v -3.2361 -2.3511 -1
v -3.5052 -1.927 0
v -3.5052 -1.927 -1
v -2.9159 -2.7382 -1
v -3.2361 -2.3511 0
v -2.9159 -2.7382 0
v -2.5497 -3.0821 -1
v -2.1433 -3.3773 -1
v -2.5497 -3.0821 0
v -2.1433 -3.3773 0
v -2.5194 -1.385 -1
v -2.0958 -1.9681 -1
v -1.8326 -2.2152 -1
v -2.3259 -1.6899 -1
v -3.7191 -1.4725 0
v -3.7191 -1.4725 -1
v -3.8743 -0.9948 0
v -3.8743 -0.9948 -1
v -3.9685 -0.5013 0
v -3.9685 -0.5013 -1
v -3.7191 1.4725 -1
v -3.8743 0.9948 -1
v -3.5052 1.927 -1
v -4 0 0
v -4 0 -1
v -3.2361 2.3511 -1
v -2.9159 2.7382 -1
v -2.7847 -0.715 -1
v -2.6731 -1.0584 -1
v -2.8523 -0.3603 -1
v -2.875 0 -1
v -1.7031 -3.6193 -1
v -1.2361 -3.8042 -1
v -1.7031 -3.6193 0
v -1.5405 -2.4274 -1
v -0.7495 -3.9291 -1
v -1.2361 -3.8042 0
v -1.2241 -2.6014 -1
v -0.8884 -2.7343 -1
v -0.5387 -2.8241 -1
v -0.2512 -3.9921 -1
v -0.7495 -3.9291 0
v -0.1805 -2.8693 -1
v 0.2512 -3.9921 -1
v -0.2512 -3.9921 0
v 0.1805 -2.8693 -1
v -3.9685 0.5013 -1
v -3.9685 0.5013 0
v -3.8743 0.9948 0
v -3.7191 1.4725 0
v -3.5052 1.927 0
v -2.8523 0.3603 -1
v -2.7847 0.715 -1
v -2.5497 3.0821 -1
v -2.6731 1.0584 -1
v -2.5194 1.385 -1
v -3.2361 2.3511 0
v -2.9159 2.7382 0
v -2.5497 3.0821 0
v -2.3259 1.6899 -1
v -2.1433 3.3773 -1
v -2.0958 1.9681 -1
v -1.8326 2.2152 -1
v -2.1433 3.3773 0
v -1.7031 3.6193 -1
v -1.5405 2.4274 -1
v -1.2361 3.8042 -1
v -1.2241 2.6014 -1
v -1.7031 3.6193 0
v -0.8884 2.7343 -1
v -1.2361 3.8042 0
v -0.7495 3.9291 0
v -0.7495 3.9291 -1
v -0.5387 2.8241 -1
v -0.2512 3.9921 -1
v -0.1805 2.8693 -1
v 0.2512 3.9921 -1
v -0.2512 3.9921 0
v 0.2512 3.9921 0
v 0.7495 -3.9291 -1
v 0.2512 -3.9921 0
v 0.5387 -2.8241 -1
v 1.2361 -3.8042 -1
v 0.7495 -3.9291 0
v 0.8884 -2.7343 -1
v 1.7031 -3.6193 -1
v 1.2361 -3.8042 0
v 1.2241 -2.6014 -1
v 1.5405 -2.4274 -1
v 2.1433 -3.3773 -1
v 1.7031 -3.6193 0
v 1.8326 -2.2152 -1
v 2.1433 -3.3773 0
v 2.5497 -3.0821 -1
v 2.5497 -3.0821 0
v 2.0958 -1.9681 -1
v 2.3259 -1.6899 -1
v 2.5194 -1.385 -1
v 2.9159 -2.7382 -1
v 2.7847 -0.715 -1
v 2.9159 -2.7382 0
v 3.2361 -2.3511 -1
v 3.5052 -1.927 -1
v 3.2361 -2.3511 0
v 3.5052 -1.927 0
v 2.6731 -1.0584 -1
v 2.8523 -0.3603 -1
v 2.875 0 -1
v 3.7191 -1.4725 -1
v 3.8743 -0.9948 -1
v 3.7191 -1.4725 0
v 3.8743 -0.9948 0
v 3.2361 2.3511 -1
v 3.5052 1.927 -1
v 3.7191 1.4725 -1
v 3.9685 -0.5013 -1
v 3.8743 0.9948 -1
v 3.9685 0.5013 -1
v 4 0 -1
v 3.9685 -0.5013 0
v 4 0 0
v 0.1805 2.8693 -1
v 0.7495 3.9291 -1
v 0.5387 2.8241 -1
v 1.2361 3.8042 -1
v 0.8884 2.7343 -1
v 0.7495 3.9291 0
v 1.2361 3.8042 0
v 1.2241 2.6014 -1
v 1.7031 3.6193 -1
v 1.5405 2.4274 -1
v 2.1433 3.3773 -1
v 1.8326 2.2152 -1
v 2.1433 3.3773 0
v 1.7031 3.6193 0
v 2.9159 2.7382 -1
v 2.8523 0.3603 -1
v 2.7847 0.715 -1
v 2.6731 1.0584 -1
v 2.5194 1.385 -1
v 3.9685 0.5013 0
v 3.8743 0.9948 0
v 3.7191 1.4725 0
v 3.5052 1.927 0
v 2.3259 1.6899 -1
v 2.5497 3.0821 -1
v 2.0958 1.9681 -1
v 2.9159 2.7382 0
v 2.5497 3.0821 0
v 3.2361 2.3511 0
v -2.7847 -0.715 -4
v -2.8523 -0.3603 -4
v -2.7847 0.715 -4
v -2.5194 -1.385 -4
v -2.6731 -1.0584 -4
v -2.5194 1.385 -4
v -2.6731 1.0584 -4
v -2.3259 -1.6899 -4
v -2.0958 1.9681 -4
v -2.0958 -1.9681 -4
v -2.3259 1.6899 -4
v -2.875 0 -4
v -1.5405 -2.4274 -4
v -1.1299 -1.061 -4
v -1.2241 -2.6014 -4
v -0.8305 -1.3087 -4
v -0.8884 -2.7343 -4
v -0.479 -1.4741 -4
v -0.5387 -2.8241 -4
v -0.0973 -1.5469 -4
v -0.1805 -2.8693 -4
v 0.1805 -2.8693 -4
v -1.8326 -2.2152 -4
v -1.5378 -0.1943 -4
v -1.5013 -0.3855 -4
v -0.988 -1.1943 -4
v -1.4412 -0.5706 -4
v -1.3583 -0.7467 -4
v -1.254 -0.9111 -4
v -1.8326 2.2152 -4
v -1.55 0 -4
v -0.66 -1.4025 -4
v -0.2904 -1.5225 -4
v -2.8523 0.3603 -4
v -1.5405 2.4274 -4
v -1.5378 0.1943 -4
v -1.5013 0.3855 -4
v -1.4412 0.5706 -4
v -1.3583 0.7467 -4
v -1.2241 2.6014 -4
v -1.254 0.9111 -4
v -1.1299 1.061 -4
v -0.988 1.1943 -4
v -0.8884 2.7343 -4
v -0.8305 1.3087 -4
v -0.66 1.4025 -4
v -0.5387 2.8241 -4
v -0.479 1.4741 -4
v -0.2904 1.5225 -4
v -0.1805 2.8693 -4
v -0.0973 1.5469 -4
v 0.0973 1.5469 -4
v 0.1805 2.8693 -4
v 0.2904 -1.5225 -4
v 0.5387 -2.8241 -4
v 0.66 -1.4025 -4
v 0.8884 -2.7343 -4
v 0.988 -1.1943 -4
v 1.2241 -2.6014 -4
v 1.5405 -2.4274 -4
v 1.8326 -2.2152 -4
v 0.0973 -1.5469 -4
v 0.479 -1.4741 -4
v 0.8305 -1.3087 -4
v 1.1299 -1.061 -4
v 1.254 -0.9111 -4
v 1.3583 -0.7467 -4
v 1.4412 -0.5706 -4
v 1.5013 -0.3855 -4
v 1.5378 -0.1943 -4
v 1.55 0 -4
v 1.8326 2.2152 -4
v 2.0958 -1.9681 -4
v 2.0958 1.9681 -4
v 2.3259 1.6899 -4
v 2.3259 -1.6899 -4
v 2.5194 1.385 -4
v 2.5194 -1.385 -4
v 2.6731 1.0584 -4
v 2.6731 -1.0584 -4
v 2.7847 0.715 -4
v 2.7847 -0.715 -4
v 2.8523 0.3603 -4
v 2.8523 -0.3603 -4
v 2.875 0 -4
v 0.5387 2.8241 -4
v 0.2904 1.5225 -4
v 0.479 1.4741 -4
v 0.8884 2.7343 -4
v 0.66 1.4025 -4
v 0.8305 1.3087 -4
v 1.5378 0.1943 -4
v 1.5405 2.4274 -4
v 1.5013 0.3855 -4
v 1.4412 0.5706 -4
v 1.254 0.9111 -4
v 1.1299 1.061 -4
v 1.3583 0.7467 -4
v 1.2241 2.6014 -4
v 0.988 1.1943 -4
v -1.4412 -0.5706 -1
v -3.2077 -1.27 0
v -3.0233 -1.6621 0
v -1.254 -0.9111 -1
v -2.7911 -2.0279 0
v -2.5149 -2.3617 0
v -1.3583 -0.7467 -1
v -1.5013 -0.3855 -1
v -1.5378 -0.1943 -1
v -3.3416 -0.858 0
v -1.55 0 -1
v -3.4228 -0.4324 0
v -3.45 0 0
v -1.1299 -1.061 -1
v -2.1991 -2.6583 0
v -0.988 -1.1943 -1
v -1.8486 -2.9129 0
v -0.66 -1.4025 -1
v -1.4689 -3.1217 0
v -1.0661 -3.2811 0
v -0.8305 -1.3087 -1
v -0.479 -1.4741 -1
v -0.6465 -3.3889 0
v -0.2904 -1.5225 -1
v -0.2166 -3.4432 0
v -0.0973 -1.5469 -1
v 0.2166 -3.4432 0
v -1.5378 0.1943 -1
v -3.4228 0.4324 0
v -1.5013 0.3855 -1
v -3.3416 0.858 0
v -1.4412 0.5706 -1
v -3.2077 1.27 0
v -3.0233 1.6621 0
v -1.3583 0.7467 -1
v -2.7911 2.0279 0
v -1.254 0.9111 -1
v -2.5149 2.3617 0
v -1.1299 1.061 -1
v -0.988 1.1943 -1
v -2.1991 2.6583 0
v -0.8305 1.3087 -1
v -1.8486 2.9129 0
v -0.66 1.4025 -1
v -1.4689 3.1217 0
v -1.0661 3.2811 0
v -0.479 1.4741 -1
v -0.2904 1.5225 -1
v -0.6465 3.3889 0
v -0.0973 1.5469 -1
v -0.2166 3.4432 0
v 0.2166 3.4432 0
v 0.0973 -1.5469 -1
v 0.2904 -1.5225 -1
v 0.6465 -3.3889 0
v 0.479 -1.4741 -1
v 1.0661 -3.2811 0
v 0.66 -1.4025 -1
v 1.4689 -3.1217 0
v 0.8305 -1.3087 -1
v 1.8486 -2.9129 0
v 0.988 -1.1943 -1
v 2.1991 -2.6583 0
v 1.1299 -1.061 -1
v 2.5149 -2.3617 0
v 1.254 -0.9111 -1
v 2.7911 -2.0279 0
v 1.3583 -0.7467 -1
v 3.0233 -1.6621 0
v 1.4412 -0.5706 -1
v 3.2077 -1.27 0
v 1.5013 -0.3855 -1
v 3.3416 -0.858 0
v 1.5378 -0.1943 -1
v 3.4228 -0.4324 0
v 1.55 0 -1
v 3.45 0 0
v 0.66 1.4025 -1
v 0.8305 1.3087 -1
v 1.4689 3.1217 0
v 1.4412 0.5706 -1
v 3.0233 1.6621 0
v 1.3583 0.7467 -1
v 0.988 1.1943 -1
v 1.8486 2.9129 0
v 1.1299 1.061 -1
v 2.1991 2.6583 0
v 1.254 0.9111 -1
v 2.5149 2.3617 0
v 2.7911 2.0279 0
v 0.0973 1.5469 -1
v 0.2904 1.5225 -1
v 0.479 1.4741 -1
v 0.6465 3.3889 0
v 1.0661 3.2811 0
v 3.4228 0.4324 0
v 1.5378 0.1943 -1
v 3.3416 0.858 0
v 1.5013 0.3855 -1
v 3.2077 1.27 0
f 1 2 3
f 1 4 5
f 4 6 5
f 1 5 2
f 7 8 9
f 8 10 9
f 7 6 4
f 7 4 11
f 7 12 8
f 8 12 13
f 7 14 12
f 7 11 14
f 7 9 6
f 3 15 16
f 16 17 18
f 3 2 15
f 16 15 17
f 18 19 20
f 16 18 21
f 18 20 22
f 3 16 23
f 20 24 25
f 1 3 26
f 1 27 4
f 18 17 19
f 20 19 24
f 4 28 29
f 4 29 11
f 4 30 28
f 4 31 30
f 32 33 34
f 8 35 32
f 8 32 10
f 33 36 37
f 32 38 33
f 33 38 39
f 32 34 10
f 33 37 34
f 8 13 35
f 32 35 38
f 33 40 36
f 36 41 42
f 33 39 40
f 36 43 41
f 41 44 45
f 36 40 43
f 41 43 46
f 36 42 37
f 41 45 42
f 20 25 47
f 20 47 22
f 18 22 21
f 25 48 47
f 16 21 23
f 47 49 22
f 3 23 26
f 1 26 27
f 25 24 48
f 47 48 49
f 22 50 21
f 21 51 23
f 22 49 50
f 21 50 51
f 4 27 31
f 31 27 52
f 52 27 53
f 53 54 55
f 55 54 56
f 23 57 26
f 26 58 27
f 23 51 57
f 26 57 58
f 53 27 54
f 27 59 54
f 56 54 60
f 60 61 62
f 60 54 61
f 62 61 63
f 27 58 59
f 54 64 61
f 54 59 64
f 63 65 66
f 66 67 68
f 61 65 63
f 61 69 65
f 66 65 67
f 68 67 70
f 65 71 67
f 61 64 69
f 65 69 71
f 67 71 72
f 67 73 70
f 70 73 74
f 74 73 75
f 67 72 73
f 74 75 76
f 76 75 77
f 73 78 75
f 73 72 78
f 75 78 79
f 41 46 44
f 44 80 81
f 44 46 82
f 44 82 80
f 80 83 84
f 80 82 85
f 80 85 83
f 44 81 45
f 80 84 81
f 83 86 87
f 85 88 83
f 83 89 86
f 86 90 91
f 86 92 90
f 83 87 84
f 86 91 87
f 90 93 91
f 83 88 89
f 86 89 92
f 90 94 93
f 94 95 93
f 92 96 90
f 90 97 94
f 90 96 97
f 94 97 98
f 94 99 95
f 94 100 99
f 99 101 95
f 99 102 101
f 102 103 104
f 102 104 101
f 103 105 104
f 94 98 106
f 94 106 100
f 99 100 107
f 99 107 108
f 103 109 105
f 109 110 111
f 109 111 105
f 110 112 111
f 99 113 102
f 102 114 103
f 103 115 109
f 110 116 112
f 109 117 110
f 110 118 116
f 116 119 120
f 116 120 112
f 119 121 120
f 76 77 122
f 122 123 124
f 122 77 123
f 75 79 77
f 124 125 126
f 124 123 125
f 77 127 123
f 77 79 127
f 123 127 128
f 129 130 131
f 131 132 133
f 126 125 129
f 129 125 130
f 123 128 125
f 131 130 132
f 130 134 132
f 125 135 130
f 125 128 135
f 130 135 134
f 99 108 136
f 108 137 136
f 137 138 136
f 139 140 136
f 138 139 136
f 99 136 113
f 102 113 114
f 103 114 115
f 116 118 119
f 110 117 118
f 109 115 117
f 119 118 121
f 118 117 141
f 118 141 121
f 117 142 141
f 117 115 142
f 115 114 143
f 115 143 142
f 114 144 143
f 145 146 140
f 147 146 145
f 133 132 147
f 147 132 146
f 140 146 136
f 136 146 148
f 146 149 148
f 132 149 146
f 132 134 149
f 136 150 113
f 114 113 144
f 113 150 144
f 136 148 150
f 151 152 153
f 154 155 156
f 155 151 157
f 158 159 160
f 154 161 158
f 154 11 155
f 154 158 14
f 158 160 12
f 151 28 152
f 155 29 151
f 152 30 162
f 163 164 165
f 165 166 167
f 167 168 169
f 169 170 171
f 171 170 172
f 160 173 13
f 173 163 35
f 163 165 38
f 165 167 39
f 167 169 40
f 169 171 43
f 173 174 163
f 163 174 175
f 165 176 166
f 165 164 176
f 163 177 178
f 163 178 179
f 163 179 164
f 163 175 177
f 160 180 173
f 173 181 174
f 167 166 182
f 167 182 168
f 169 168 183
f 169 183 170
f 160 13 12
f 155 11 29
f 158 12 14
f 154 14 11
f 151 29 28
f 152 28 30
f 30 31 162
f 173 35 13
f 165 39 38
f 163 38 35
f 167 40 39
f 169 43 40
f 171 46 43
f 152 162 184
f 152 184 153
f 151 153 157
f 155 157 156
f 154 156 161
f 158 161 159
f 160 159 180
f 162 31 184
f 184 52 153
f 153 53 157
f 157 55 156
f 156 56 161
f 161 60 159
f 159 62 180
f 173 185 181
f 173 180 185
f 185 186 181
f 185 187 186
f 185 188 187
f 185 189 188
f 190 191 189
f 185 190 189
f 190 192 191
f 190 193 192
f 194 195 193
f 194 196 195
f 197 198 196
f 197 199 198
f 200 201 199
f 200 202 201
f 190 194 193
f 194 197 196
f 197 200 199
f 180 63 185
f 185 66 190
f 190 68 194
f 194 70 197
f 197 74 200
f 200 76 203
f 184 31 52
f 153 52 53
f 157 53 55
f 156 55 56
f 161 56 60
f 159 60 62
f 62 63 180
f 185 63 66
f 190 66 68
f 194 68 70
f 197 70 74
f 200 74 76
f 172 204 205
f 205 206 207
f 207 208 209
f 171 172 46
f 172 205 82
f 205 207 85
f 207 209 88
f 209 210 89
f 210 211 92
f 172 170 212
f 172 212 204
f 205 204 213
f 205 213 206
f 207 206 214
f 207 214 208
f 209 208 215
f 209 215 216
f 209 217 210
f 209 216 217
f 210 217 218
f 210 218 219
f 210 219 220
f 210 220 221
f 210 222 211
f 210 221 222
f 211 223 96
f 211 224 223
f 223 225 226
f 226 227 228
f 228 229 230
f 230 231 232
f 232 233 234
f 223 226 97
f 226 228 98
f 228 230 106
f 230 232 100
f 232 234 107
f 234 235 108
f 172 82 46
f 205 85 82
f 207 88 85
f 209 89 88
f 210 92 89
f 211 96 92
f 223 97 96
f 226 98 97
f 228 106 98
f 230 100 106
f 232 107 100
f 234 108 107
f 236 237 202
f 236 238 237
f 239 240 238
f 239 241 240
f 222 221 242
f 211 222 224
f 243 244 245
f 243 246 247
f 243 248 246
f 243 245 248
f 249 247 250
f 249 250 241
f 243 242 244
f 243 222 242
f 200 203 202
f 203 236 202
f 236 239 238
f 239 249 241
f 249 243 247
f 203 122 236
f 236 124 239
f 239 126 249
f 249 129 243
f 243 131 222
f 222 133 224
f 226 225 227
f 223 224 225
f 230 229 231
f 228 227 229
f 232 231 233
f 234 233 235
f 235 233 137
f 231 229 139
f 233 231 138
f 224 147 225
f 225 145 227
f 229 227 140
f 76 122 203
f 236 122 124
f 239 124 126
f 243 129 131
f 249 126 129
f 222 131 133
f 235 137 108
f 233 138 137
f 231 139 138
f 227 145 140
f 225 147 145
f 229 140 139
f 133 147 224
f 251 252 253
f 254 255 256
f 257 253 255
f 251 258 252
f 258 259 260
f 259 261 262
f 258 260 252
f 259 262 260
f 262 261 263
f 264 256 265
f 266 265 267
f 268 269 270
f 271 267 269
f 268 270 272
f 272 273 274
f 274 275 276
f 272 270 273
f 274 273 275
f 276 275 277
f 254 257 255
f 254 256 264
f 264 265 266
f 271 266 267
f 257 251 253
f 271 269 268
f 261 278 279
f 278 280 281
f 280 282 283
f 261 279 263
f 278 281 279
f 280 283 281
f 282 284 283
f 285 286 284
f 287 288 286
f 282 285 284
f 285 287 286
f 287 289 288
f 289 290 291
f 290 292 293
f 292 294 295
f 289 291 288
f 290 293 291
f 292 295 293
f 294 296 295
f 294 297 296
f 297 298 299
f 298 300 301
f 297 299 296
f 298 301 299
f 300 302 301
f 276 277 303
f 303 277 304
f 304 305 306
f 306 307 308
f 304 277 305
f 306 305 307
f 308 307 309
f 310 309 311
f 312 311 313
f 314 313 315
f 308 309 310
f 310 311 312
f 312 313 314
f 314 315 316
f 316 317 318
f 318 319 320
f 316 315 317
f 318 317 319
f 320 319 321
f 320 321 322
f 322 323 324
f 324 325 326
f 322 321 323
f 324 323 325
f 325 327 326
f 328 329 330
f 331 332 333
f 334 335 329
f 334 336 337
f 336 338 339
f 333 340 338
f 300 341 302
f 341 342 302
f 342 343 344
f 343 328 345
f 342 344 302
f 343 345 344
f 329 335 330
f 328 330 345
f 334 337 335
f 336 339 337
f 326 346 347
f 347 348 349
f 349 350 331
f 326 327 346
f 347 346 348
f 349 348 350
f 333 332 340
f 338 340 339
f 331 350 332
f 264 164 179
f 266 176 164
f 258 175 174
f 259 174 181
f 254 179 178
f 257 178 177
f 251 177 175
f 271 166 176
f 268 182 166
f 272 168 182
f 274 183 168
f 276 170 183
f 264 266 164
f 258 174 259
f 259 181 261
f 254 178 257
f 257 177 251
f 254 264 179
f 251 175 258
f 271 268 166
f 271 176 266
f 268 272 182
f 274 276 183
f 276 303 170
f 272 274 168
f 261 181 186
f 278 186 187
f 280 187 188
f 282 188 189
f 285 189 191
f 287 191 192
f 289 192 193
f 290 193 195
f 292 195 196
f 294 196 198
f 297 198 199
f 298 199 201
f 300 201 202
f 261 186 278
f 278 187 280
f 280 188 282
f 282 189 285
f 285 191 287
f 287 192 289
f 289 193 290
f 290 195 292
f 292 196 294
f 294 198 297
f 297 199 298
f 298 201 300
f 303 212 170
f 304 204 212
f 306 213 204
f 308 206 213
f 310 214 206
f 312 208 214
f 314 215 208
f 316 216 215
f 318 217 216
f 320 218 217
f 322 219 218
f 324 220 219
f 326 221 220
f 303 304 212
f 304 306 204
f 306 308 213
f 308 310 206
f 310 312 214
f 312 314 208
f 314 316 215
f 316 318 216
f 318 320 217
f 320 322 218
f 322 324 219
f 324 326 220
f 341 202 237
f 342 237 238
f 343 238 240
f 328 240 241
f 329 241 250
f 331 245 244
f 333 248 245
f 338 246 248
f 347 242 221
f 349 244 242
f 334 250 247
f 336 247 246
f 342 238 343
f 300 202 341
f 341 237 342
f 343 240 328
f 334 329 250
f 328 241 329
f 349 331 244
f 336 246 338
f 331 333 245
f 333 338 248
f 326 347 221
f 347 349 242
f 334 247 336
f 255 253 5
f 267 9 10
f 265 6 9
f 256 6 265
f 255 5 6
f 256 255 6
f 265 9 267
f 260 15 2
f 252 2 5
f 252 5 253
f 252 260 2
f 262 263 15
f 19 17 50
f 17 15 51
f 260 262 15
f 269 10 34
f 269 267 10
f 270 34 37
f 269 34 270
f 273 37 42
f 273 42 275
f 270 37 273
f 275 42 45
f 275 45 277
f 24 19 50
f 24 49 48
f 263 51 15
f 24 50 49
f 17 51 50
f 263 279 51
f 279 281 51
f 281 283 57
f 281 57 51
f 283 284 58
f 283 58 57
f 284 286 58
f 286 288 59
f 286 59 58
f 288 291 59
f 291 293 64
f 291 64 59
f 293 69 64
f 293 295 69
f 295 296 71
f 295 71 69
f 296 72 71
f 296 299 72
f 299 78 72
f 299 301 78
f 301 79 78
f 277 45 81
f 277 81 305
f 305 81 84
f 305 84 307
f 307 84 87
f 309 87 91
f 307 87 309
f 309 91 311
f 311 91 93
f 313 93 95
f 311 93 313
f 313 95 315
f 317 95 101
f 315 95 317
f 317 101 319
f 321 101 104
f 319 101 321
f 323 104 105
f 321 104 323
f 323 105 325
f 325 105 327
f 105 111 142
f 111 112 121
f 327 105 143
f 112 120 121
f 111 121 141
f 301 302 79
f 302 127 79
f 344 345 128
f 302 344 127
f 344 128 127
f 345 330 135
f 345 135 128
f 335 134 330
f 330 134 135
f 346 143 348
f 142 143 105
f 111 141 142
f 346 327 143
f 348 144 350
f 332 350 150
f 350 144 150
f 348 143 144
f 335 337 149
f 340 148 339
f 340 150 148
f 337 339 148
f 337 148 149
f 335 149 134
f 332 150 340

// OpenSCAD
$fn = 50;

difference() {
	union() {
		translate(v = [0, 0, -1.0]) {
			cylinder(h = 4.0, r = 4.0);
		}
		#translate(v = [0, 0, -4.0]) {
			cylinder(h = 4.0, r = 2.875);
		}
	}
	union() {
		translate(v = [0, 0, 0]) {
			rotate(a = [0, 0, 0]) {
				difference() {
					union() {
						translate(v = [0, 0, -4.0]) {
							cylinder(h = 4.0, r = 1.25);
						}
						translate(v = [0, 0, -1.0]) {
							cylinder(h = 1.0, r1 = 1.55, r2 = 3.45);
						}
						translate(v = [0, 0, -4.0]) {
							cylinder(h = 4.0, r = 1.55);
						}
						translate(v = [0, 0, -4.0]) {
							cylinder(h = 4.0, r = 1.25);
						}
					}
					union();
				}
			}
		}
		#cylinder(h = 3, r = 5.0);
	}
}
